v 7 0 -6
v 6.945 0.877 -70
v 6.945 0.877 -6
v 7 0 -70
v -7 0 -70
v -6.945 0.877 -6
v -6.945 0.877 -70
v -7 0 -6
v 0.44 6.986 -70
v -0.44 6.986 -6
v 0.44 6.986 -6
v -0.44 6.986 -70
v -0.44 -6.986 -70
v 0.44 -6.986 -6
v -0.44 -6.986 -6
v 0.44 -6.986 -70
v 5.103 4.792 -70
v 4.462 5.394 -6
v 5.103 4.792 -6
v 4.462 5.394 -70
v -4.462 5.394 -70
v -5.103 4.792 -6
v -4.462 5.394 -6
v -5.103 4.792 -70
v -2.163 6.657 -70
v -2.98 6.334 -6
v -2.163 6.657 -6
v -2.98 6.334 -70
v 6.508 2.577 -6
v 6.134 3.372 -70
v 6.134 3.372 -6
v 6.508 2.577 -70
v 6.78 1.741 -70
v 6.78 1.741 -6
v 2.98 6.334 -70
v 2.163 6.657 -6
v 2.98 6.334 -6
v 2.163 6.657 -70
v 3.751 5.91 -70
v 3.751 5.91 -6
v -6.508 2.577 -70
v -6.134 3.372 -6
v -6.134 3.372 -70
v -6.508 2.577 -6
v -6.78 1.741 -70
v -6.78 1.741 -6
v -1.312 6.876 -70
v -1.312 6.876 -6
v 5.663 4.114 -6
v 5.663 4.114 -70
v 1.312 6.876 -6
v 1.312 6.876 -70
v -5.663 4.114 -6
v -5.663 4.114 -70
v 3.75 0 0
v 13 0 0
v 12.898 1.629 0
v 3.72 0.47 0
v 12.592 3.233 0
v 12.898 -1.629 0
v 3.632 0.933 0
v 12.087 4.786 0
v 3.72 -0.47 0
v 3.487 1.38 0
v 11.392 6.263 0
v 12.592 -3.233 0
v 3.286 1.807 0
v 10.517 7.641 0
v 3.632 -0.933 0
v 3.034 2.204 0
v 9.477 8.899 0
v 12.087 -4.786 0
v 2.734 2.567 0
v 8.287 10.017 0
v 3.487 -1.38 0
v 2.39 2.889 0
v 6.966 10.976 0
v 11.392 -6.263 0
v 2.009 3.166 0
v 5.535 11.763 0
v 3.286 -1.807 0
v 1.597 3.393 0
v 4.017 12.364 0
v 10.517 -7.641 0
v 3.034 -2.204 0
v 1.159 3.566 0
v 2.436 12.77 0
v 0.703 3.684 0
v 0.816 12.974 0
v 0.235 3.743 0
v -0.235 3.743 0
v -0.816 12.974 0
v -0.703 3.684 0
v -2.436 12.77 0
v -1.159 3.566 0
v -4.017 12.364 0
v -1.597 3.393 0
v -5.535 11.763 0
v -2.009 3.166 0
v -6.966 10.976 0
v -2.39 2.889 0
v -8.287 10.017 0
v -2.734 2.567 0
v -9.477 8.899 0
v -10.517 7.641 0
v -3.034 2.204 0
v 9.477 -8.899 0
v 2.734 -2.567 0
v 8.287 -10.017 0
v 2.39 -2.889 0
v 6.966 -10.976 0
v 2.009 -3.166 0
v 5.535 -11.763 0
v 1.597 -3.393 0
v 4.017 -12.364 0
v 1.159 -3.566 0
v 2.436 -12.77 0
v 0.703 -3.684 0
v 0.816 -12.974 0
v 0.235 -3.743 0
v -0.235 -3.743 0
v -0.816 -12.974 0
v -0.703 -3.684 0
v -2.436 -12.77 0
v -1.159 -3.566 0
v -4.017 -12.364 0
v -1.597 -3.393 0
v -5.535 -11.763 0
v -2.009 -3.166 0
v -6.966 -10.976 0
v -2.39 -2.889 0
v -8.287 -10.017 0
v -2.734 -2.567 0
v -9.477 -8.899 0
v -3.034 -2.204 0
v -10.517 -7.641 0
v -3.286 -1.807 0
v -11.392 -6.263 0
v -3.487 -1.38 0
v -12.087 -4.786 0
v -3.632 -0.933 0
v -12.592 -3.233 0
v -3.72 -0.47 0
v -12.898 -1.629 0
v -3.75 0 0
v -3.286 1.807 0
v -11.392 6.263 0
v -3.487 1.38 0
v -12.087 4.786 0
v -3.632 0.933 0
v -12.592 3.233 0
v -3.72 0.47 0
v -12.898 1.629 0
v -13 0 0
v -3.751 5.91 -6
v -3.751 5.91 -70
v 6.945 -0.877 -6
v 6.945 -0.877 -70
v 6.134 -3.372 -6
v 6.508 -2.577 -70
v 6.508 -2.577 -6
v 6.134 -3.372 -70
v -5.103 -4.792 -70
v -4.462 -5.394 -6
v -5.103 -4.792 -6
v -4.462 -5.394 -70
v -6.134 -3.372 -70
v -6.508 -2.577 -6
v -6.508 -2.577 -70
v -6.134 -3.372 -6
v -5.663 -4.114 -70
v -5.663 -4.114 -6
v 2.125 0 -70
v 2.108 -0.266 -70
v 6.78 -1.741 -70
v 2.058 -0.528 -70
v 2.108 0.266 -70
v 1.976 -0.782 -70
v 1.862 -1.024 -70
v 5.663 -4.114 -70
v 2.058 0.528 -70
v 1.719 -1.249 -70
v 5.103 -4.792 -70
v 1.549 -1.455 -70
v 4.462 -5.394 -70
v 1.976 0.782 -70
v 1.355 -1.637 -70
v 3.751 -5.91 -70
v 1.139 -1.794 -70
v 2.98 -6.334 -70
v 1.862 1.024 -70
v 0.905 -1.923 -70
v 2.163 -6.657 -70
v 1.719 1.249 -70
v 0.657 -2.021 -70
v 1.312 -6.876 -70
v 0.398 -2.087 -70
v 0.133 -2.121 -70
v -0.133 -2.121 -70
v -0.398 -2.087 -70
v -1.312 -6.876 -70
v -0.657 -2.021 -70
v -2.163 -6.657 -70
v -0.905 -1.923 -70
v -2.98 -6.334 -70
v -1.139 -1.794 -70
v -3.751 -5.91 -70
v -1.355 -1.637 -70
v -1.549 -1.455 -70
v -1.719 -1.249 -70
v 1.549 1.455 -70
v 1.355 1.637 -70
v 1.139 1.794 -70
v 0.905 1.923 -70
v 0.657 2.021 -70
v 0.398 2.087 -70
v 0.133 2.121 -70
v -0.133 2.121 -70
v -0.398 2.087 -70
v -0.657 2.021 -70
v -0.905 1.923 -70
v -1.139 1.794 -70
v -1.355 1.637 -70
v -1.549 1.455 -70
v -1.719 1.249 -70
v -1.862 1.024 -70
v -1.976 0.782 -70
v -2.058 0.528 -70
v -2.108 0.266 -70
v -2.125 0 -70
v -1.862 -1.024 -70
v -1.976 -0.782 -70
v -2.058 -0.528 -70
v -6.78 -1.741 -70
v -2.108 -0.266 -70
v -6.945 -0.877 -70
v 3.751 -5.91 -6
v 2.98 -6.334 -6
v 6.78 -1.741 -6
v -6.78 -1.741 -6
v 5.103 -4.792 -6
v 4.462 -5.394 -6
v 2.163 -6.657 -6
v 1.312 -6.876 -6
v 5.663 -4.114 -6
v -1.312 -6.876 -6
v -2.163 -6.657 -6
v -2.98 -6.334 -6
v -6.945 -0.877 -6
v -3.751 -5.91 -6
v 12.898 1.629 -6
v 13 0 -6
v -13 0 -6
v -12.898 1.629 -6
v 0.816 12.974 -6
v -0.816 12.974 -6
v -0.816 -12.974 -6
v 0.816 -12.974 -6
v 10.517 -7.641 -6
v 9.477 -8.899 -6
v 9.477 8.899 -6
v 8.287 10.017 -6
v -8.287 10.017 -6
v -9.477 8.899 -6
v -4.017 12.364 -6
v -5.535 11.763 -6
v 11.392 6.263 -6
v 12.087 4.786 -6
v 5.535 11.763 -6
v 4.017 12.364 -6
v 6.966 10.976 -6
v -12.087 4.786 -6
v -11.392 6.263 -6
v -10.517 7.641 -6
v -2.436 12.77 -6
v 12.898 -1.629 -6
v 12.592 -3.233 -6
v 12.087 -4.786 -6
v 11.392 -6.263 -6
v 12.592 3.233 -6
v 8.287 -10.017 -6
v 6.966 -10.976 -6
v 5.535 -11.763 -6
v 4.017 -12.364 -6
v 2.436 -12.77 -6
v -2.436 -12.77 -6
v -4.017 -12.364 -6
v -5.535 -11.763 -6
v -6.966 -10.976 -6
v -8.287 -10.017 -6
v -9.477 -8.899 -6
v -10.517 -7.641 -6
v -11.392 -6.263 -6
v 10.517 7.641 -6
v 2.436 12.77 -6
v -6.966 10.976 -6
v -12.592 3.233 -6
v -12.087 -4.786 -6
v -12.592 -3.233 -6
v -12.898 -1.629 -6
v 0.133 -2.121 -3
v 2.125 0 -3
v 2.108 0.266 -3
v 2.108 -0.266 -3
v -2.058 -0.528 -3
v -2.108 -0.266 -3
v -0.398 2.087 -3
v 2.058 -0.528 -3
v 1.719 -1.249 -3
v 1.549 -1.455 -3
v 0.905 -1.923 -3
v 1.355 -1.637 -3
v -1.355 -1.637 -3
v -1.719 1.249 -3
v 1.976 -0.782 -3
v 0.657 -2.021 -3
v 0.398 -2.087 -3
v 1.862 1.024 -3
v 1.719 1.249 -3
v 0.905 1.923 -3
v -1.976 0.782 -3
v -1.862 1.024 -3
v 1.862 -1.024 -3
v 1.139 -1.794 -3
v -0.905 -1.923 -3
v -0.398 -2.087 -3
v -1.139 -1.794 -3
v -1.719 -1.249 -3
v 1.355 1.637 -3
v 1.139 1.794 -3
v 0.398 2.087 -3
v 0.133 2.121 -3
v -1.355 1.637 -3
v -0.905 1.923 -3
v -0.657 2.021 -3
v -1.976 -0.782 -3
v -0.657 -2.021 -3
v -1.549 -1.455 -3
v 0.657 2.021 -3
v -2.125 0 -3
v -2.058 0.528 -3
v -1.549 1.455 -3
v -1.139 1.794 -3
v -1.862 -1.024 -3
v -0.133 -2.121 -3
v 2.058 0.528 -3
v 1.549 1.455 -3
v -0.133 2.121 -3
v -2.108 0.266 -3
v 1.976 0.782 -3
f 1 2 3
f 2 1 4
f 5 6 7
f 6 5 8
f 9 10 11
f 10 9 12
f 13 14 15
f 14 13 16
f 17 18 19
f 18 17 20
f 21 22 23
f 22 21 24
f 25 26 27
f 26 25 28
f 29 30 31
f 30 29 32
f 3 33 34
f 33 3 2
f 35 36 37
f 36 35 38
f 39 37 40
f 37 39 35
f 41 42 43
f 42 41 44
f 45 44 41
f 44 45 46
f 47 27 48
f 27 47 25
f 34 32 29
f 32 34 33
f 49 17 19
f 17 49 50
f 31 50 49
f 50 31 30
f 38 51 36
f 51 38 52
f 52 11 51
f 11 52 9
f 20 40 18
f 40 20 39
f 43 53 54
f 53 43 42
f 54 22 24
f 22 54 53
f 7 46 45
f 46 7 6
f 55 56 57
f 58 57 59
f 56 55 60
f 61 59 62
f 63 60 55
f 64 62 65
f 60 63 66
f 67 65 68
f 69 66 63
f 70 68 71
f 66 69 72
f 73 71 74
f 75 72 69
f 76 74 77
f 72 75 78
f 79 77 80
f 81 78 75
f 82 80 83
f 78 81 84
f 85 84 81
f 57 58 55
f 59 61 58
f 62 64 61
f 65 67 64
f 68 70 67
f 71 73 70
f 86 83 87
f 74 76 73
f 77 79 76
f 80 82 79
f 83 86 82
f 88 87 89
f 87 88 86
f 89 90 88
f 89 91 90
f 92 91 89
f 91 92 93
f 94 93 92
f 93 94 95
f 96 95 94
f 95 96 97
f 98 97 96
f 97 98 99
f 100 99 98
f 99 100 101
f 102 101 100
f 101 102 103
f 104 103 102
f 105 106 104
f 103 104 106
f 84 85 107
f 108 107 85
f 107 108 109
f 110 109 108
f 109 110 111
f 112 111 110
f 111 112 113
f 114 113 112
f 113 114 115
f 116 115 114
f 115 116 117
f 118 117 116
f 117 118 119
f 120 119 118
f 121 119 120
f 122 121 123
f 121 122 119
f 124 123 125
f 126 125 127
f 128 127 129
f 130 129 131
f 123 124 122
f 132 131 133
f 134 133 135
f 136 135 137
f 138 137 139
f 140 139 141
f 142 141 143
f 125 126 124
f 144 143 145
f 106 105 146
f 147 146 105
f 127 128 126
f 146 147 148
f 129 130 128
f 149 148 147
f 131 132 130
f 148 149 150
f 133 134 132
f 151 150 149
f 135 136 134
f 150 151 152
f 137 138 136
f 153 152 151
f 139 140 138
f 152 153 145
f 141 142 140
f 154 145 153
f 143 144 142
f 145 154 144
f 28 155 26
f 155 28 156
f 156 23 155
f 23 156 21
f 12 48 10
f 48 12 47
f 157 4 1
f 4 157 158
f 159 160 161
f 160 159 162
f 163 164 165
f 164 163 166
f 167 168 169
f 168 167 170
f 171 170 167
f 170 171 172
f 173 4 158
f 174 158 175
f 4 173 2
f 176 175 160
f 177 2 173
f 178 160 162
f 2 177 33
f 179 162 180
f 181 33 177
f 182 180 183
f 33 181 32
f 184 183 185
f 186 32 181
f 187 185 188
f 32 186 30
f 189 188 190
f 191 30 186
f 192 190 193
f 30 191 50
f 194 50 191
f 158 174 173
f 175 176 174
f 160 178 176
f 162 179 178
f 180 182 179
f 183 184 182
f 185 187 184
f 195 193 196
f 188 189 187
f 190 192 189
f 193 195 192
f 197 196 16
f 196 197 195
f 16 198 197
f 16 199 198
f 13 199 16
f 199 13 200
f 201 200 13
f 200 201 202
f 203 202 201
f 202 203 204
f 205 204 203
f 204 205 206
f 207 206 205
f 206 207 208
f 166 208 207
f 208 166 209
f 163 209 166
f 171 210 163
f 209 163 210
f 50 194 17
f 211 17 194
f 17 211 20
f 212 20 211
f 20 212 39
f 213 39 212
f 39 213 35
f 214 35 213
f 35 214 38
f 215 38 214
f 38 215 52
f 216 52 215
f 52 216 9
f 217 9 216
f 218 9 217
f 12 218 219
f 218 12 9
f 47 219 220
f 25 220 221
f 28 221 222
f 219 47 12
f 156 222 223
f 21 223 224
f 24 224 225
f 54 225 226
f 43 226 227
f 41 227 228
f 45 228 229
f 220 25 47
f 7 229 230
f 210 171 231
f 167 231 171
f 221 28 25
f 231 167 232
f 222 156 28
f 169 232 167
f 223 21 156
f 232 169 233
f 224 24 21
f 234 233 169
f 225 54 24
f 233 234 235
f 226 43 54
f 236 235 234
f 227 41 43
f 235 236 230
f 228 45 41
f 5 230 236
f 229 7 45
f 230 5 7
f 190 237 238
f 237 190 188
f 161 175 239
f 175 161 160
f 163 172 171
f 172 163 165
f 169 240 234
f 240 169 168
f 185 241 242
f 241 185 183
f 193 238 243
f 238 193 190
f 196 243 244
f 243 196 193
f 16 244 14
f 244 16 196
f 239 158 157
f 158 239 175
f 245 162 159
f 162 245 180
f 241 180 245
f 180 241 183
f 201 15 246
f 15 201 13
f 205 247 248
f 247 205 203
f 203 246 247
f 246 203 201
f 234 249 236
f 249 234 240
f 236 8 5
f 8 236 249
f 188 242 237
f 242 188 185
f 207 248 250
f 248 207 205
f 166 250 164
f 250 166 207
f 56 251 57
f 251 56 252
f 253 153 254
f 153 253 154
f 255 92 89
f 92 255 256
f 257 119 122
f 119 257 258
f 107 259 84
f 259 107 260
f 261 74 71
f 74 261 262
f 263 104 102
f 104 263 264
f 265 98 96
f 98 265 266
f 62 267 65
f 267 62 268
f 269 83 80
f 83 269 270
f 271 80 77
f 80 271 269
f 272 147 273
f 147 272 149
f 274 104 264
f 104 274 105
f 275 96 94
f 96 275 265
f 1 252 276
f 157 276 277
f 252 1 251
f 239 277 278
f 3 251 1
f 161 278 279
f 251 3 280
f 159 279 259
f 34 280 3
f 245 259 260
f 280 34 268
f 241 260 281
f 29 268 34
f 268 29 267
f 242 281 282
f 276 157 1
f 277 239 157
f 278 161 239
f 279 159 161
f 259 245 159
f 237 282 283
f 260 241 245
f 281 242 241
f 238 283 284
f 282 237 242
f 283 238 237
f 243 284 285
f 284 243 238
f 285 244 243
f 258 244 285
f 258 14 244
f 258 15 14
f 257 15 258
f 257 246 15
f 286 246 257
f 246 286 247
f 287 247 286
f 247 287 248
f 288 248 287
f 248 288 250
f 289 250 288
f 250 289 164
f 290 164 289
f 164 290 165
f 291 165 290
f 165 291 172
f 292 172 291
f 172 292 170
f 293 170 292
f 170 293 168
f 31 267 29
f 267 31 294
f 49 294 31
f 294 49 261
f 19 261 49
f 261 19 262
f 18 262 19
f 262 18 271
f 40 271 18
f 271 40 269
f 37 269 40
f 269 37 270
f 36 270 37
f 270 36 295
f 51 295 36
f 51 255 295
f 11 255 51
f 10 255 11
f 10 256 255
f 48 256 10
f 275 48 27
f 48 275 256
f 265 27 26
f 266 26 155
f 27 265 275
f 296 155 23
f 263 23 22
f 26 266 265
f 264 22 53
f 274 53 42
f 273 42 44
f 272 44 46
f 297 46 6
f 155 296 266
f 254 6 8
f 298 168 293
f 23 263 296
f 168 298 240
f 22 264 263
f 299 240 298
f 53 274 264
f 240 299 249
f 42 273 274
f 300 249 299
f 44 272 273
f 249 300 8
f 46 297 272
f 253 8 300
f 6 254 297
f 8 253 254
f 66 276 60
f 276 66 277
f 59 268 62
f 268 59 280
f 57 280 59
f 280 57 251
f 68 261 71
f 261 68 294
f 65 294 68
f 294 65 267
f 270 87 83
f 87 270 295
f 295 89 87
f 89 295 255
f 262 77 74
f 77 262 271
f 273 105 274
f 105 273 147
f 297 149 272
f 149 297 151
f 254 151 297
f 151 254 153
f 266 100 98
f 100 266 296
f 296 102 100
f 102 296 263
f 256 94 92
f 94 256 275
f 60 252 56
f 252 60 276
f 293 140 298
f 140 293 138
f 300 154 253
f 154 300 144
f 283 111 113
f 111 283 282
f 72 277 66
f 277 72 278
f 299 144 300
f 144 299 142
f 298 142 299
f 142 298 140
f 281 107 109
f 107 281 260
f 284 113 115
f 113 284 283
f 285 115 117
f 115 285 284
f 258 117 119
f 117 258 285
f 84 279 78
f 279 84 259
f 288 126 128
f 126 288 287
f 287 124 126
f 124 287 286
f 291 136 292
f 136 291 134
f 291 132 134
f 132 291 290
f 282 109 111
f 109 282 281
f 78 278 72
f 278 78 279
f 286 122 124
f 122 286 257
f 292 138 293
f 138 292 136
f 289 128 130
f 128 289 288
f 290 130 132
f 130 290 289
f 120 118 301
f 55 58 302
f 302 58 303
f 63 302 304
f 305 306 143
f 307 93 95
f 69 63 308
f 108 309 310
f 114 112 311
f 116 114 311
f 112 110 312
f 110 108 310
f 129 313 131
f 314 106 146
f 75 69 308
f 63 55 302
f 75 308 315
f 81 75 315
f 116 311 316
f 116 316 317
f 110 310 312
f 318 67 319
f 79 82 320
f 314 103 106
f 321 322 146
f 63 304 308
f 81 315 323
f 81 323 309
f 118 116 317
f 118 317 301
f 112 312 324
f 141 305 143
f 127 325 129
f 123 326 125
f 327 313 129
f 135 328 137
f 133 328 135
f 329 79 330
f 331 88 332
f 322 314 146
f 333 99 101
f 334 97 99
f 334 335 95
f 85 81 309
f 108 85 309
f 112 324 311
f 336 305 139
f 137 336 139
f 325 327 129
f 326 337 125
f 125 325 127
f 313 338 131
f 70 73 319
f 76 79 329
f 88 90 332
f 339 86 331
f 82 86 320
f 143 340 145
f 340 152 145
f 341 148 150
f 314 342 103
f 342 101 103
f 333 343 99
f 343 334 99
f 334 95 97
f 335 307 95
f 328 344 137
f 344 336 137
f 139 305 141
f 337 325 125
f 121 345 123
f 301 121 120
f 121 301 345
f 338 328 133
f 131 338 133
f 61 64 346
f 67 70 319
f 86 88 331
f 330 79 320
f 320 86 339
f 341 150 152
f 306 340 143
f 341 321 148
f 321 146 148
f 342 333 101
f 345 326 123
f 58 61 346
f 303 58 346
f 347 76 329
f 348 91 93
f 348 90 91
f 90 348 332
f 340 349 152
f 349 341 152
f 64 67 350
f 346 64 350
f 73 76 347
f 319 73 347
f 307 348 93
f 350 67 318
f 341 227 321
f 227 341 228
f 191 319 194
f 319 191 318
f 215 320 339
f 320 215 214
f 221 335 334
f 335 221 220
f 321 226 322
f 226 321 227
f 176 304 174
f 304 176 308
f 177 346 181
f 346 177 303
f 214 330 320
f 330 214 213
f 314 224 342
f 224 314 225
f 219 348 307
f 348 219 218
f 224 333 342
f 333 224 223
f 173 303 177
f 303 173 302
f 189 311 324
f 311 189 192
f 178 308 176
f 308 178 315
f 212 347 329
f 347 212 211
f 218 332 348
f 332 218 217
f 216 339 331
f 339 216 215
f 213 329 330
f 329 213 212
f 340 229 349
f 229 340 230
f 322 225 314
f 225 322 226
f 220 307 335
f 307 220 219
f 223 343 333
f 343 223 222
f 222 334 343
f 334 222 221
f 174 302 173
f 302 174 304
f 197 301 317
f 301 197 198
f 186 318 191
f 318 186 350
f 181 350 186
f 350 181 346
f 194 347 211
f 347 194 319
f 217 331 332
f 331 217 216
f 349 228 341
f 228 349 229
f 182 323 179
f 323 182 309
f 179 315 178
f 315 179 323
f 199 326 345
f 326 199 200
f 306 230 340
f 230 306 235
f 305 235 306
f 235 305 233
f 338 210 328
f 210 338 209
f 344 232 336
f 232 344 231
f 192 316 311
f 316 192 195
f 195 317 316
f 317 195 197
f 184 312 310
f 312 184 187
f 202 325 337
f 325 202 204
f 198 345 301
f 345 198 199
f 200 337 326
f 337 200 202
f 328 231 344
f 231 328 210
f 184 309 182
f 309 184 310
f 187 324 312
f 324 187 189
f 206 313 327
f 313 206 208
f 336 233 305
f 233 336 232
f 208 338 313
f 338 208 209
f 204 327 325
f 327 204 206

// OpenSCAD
$fn = 50;


difference() {
	union() {
		translate(v = [0, 0, -70.0000000000]) {
			cylinder(h = 70, r = 7.0000000000);
		}
		translate(v = [0, 0, -6.0000000000]) {
			cylinder(h = 6, r = 13.0000000000);
		}
	}
	union() {
		translate(v = [0, 0, 0]) {
			rotate(a = [0, 0, 0]) {
				difference() {
					union() {
						#translate(v = [0, 0, -70.0000000000]) {
							cylinder(h = 70, r = 2.0000000000);
						}
						#translate(v = [0, 0, -3]) {
							cylinder(h = 3, r1 = 2.1250000000, r2 = 3.7500000000);
						}
						#translate(v = [0, 0, -70.0000000000]) {
							cylinder(h = 70, r = 2.1250000000);
						}
						#translate(v = [0, 0, -70.0000000000]) {
							cylinder(h = 70, r = 2.0000000000);
						}
					}
					union();
				}
			}
		}
	}
}
